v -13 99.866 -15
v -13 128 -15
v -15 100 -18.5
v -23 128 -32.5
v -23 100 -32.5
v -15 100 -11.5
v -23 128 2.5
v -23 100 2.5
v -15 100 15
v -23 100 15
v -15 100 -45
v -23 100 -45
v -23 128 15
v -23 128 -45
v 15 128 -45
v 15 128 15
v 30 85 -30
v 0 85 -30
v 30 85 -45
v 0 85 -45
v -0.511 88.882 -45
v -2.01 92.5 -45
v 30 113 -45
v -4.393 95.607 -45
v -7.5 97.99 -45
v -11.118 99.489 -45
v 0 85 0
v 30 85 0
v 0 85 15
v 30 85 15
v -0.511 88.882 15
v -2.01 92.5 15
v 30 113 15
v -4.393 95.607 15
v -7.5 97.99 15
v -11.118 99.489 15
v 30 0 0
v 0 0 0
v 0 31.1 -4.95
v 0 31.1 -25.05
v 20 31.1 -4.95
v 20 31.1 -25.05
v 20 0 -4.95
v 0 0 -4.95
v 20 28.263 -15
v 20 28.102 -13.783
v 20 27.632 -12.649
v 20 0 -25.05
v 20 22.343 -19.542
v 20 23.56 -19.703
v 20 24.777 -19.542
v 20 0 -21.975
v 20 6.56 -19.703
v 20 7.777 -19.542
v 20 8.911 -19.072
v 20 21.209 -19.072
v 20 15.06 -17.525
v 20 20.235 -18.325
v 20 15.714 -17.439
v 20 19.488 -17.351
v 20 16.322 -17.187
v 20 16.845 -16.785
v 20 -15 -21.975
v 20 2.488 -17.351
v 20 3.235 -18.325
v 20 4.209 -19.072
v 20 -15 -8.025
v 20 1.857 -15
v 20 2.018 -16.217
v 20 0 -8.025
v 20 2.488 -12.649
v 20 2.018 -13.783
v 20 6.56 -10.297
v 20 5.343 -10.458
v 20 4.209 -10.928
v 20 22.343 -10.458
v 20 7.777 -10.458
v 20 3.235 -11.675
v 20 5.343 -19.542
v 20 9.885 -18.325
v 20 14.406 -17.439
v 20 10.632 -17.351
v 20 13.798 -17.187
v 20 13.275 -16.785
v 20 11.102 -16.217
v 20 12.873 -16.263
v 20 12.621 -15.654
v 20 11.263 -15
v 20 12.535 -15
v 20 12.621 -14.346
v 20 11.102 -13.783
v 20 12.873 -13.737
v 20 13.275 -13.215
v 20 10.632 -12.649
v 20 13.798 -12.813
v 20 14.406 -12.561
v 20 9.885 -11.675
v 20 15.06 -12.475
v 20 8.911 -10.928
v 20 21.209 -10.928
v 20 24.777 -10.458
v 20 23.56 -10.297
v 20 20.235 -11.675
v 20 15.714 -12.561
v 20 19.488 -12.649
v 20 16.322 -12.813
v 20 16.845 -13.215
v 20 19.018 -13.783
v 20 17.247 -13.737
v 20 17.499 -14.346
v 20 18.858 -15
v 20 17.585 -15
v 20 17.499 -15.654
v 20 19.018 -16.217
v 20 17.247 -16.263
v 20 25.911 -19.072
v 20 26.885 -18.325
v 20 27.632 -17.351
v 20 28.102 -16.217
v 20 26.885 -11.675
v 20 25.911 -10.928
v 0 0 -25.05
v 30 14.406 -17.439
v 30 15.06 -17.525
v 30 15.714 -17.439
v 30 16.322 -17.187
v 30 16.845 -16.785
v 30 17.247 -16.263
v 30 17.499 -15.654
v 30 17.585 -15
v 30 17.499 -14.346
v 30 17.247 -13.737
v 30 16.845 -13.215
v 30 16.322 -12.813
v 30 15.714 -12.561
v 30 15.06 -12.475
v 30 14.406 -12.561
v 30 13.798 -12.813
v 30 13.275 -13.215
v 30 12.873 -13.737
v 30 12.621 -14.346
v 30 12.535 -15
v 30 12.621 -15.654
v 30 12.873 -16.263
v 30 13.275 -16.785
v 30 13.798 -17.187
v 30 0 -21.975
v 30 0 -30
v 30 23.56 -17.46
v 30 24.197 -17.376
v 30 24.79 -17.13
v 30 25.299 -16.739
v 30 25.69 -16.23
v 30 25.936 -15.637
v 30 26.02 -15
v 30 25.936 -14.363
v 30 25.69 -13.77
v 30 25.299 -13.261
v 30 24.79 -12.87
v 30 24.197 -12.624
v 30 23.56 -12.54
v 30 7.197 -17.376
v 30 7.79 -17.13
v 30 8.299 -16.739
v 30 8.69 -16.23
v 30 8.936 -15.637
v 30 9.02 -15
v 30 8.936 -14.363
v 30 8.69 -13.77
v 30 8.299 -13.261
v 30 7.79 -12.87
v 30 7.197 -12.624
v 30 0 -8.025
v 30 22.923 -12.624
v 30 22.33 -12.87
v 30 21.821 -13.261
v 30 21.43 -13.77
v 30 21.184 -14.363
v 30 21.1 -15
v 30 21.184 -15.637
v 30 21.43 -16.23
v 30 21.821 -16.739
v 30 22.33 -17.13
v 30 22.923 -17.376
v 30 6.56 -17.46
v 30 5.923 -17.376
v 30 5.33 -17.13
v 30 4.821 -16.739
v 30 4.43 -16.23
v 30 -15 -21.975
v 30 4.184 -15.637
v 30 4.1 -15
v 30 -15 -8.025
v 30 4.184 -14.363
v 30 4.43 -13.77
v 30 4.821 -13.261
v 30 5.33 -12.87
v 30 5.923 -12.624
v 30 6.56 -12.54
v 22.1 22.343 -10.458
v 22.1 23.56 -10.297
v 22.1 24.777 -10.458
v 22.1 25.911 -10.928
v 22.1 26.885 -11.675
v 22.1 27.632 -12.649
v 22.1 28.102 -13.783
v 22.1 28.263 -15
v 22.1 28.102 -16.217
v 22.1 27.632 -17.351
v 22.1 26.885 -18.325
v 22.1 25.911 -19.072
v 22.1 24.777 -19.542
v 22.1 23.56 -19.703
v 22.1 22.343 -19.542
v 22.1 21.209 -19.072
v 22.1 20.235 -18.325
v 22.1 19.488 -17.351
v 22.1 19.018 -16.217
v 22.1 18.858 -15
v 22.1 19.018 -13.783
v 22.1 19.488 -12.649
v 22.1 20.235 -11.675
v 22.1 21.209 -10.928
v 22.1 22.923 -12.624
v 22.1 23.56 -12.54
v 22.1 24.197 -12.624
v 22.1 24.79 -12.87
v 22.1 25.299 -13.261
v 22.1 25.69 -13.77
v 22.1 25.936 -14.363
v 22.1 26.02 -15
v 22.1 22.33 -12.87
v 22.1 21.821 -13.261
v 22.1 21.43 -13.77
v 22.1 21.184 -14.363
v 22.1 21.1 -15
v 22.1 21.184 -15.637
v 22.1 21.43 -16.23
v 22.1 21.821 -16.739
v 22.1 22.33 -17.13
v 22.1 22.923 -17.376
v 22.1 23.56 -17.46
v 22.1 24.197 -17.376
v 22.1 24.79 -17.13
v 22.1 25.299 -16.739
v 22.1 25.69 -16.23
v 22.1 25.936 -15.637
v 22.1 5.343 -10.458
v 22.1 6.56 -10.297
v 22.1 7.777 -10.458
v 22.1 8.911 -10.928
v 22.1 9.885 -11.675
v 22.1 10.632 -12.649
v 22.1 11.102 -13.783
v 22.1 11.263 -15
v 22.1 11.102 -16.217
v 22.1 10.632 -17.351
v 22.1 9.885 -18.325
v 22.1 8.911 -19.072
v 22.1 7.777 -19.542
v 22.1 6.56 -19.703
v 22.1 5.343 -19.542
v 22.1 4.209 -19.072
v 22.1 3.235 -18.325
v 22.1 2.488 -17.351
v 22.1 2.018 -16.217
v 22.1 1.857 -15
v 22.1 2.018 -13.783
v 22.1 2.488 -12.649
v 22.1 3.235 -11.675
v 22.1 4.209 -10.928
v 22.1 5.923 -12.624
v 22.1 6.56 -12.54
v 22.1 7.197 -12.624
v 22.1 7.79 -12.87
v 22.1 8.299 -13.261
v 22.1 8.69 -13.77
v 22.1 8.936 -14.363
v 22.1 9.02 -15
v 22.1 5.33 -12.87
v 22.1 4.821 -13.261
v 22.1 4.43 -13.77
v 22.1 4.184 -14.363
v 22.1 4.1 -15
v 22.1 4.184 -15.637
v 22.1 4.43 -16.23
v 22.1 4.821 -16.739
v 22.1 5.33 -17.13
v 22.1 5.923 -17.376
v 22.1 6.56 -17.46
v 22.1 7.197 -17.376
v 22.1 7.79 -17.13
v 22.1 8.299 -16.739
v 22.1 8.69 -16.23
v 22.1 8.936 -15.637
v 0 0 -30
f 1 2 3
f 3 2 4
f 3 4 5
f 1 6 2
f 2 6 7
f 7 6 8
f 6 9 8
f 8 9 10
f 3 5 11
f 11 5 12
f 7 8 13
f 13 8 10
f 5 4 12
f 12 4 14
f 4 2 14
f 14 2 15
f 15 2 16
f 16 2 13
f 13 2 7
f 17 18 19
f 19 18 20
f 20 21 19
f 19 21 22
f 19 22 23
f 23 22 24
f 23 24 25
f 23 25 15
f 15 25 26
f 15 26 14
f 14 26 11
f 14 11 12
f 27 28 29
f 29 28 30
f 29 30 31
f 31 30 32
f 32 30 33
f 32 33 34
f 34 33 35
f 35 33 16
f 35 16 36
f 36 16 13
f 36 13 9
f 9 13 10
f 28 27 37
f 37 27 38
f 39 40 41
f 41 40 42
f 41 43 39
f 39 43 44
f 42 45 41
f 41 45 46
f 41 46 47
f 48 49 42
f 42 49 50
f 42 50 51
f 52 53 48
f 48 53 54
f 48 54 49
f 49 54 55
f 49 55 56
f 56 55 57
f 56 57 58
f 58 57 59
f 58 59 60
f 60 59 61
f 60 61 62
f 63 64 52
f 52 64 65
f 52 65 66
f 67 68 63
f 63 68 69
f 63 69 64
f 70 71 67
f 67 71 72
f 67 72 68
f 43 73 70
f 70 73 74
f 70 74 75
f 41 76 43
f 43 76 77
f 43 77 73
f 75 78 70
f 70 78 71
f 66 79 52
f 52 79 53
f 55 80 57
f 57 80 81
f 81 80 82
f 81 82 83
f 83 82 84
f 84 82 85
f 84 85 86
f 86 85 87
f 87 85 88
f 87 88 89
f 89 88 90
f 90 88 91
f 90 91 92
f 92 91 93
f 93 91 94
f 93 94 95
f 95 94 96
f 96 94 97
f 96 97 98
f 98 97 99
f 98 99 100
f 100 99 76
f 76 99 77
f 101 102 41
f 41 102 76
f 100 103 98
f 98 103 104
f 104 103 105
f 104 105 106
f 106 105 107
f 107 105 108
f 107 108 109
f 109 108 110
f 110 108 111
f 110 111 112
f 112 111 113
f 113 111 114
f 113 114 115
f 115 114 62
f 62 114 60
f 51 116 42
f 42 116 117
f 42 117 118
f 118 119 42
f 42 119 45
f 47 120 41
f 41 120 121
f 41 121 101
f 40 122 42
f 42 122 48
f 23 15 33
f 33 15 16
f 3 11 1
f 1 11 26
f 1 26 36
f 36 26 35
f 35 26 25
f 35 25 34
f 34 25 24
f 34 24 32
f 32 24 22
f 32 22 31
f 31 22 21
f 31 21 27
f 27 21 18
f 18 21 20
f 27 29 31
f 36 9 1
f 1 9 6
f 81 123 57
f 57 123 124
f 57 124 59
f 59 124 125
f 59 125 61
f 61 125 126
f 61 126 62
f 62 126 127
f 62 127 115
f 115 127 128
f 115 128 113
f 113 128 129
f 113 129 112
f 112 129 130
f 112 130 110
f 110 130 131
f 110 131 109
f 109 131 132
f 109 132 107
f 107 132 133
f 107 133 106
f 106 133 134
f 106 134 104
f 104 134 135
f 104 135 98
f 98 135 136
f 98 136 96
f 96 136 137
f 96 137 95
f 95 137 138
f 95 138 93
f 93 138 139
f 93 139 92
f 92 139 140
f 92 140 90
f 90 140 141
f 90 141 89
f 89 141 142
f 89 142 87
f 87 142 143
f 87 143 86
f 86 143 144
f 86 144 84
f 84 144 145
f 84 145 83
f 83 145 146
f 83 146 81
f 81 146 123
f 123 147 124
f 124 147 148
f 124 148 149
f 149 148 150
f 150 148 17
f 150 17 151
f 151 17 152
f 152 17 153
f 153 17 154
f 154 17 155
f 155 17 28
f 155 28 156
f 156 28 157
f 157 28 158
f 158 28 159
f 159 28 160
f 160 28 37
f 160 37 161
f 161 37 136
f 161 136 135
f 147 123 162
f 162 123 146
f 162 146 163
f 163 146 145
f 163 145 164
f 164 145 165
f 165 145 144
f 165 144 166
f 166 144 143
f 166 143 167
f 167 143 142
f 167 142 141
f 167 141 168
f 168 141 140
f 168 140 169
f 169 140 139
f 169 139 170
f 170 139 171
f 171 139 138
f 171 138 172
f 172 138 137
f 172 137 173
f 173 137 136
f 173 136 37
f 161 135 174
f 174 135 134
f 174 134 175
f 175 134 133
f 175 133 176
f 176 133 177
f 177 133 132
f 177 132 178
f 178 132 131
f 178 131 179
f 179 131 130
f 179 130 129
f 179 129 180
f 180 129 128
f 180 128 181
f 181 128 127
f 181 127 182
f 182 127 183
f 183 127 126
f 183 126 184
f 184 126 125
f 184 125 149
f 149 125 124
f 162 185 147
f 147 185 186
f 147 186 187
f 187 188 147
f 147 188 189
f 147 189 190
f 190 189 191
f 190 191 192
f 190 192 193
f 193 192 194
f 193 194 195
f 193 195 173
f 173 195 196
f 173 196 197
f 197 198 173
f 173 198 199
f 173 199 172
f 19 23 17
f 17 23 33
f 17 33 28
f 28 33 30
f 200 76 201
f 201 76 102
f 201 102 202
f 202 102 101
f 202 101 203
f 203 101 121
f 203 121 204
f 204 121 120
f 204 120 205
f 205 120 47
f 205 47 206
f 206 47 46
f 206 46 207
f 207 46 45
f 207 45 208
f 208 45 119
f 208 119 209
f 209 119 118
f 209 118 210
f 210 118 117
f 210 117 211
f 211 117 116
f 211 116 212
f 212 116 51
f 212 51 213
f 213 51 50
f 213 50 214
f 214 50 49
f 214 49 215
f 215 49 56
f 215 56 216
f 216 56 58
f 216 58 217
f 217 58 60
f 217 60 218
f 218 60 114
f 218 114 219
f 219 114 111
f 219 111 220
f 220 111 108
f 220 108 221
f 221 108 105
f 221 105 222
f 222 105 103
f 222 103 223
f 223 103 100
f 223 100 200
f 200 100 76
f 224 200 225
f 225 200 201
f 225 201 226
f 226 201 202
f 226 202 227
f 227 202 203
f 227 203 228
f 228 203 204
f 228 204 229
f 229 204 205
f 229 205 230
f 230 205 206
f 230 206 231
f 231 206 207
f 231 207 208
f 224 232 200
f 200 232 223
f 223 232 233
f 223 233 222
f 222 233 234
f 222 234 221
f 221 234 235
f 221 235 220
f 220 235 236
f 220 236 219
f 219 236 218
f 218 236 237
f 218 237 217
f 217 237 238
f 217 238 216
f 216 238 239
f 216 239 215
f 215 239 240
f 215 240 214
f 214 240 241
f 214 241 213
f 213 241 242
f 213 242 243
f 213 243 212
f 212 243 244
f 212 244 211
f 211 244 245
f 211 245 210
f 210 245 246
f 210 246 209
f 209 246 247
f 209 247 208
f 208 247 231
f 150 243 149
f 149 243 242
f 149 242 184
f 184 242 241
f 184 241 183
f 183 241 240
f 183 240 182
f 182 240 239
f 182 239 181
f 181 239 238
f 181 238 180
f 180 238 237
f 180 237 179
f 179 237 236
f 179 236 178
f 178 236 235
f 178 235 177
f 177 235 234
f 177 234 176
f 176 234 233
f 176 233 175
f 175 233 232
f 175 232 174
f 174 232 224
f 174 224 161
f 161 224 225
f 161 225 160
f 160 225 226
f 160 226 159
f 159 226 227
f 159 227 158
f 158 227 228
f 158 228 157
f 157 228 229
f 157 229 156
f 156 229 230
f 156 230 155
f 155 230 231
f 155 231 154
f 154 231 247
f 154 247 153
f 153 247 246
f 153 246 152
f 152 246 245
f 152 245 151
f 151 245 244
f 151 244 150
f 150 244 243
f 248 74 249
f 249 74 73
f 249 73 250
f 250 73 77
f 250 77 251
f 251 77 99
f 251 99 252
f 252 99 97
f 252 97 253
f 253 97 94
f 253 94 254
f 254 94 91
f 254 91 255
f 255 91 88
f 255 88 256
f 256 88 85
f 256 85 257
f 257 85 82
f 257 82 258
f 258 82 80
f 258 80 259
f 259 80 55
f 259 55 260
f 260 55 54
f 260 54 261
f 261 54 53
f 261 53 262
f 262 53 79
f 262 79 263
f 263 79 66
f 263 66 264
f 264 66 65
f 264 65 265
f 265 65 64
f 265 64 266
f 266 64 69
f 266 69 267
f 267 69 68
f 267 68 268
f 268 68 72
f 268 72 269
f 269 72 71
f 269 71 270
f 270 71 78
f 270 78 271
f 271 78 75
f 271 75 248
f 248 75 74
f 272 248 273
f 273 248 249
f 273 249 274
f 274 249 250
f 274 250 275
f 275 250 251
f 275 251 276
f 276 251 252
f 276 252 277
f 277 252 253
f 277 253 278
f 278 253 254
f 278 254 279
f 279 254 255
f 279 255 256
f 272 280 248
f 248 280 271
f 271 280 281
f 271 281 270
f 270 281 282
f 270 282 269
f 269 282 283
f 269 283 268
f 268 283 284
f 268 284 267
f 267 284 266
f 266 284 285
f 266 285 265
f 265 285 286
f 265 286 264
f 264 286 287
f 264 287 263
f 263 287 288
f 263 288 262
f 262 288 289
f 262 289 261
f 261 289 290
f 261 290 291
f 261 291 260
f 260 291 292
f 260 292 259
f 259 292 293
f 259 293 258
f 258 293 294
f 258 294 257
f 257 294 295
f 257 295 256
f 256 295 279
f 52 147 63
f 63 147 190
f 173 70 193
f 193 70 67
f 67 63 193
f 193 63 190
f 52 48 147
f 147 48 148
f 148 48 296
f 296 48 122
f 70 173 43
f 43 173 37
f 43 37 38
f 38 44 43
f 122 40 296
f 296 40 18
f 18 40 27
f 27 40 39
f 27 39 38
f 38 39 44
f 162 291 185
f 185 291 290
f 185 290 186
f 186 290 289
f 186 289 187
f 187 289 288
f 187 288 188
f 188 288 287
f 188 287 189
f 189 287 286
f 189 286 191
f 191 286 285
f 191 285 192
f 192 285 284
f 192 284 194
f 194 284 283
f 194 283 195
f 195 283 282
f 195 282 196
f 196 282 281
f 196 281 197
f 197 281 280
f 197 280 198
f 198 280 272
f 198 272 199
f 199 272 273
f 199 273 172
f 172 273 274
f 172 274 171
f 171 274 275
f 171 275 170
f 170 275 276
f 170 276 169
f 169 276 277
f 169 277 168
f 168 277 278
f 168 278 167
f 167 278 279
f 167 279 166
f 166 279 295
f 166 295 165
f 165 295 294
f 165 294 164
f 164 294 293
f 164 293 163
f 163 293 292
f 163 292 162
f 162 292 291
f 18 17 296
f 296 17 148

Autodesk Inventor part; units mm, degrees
ref_plane "YZ Plane" through (0, 0, 0) normal (1, 0, 0) x (0, 1, 0)
ref_plane "XZ Plane" through (0, 0, 0) normal (0, 1, 0) x (-1, 0, 0)
sketch "Sketch1" plane through (0, 0, 0) normal (0, 0, 1) x (1, 0, 0)
  line L0 (0, 0) -> (25, 0)
  line L1 (25, 0) -> (25, 40)
  line L2 (25, 40) -> (0, 40)
  line L3 (0, 40) -> (0, 0)
  dimension "d1" = 25
  dimension "d2" = 40
  dimension "d3" = 25
extrude "Extrusion1" add sketch "Sketch1" against normal blind 30
sketch "Sketch2" plane through (25, 0, 0) normal (1, 0, 0) x (0, 0, -1)
  line L0 (0, 0) -> (30, 0) projected
  circle A0 centre (15, 6.56) radius 2.46
extrude "Extrusion2" cut sketch "Sketch2" against normal blind 30
sketch "Sketch3" plane through (0, 0, 0) normal (-1, 0, 0) x (0, 0, 1)
  line L0 (0, 0) -> (-30, 0) projected
  line L1 (-25.05, 0) -> (-4.95, 0)
  line L2 (-4.95, 0) -> (-4.95, 33.12)
  line L3 (-4.95, 33.12) -> (-25.05, 33.12)
  line L4 (-25.05, 33.12) -> (-25.05, 0)
  dimension "d11" = 20.1
extrude "Extrusion3" cut sketch "Sketch3" against normal blind 20
sketch "Sketch4" plane through (0, 0, 0) normal (0, -1, 0) x (1, 0, 0)
  line L0 (20, -4.95) -> (20, -25.05) projected
  line L1 (20, -15) -> (25, -15)
  line L2 (25, 0) -> (25, -30) projected
  line L3 (20, -8.025) -> (25, -8.025)
  line L4 (25, -8.025) -> (25, -21.975)
  line L5 (25, -21.975) -> (20, -21.975)
  line L6 (20, -21.975) -> (20, -8.025)
  line L7 (20, -8.025) -> (25, -21.975) construction
  line L8 (25, -8.025) -> (20, -21.975) construction
  line L9 (25, -12.54) -> (25, -17.46) projected
  point P0 (0, 0)
  point P1 (22.5, -15)
  dimension "d14" = 13.95
extrude "Extrusion4" add sketch "Sketch4" along normal blind 15
sketch "Sketch5" plane through (20, 0, 0) normal (-1, 0, 0) x (0, 0, 1)
  circle A0 centre (-15, 6.56) radius 2.46 projected
  circle A1 centre (-15, 6.56) radius 4.7025
  circle A2 centre (-15, 6.56) radius 2.46 projected
  circle A3 centre (-15, 6.56) radius 2.46
  point P0 (0, 0)
  dimension "d17" = 9.405
extrude "Extrusion5" cut sketch "Sketch5" against normal blind 2.1
sketch "Sketch6" plane through (25, 0, 0) normal (1, 0, 0) x (0, 0, -1)
  circle A0 centre (15, 6.56) radius 4.7025 projected
  line L0 (15, 6.56) -> (15, 23.56)
  circle A1 centre (15, 23.56) radius 2.46
  point P0 (0, 0)
  dimension "d20" = 17
  dimension "d21" = 4.92
extrude "Extrusion6" cut sketch "Sketch6" against normal blind 10 contours A1
sketch "Sketch7" plane through (20, 0, 0) normal (-1, 0, 0) x (0, 0, 1)
  circle A0 centre (-15, 23.56) radius 2.46 projected
  circle A1 centre (-15, 23.56) radius 4.7025
  point P0 (0, 0)
  dimension "d24" = 9.405
extrude "Extrusion7" cut sketch "Sketch7" against normal blind 2.1
sketch "Sketch9" plane through (25, 0, 0) normal (1, 0, 0) x (0, 0, -1)
  circle A0 centre (15, 6.56) radius 2.46 projected
  circle A1 centre (15, 6.56) radius 2.46
  circle A2 centre (15, 23.56) radius 2.46 projected
  circle A3 centre (15, 23.56) radius 2.46
  line L0 (30, 40) -> (30, 0) projected
  line L1 (30, 0) -> (30, 40)
  line L2 (30, 40) -> (0, 40)
  line L3 (0, 40) -> (0, 0)
  line L4 (0, 0) -> (8.025, 0) projected
  line L5 (21.975, 0) -> (21.975, -15)
  line L6 (21.975, -15) -> (8.025, -15)
  line L7 (8.025, -15) -> (8.025, 0)
  line L8 (0, 0) -> (8.025, 0)
  line L9 (21.975, 0) -> (30, 0)
extrude "Extrusion8" add sketch "Sketch9" along normal blind 5
sketch "Sketch10" plane through (0, 40, 0) normal (0, 1, 0) x (1, 0, 0)
  line L0 (0, 30) -> (30, 30) projected
  line L1 (30, 0) -> (0, 0) projected
  line L2 (0, 30) -> (30, 30)
  line L3 (30, 30) -> (30, 0)
  line L4 (30, 0) -> (0, 0)
  line L5 (0, 0) -> (0, 30)
extrude "Extrusion9" add sketch "Sketch10" along normal blind 30
sketch "Sketch12" plane through (30, 0, 0) normal (1, 0, 0) x (0, 0, -1)
  circle A0 centre (15, 6.56) radius 2.46 projected
  line L0 (15, 6.56) -> (15, 15.06)
  circle A1 centre (15, 15.06) radius 2.525
  point P0 (0, 0)
  dimension "d31" = 8.5
  dimension "d33" = 5.05
extrude "Extrusion10" cut sketch "Sketch12" against normal blind 30 contours A1
sketch "Sketch14" plane through (0, 0, 0) normal (0, 0, 1) x (1, 0, 0)
  line L0 (30, 70) -> (0, 70) projected
  line L1 (0, 70) -> (0, 85)
  line L2 (-15, 100) -> (-23, 100)
  line L3 (30, 0) -> (30, 70) projected
  line L4 (30, 113) -> (30, 70)
  arc A0 (0, 85) -> (-15, 100) centre (-15, 85) ccw
  line L5 (30, 105) -> (30, 100)
  line L6 (-23, 128) -> (15, 128)
  line L7 (30, 113) -> (15, 128)
  line L8 (-23, 128) -> (-23, 100)
  point P0 (0, 0)
  point P1 (0, 100)
  dimension "d47" = 30
  dimension "d54" = 15
  dimension "d69" = 28
extrude "Extrusion12" add sketch "Sketch14" against normal blind 30
sketch "Sketch15" plane through (0, 0, -25.05) normal (-1, 0, 0) x (0, 0, 1)
  line L0 (0, 33.12) -> (20.1, 33.12) projected
  line L1 (20.1, 33.12) -> (20.1, 0) projected
  line L2 (0, 33.12) -> (20.1, 33.12)
  line L3 (20.1, 33.12) -> (20.1, 31.1)
  line L4 (20.1, 31.1) -> (0, 31.1)
  line L5 (0, 31.1) -> (0, 33.12)
  point P0 (25.05, 0)
  dimension "d57" = 2.02
extrude "Extrusion13" add sketch "Sketch15" against normal blind 20
sketch "Sketch20" plane through (0, 0, 0) normal (0, 0, 1) x (1, 0, 0)
  arc A0 (0, 85) -> (-15, 100) centre (-15, 85) ccw projected
  arc A1 (0, 85) -> (-15, 100) centre (-15, 85) ccw
  line L0 (-15, 100) -> (-23, 100) projected
  line L1 (-15, 100) -> (-23, 100)
  line L2 (-23, 128) -> (15, 128) projected
  line L3 (-23, 128) -> (15, 128)
  line L4 (15, 128) -> (30, 113) projected
  line L5 (15, 128) -> (30, 113)
  line L6 (30, 113) -> (30, 85)
  line L7 (30, 0) -> (30, 113) projected
  line L8 (30, 85) -> (0, 85)
  line L9 (-23, 128) -> (-23, 100)
  point P0 (0, 0)
  point P1 (-19, 102)
  point P2 (-15, 114)
  point P3 (-19, 126)
extrude "Extrusion14" add sketch "Sketch20" along normal blind 15
ref_plane "Work Plane1" through (0, 0, -15) normal (0, 0, 1) x (1, 0, 0)
mirror "Mirror1" about plane through (0, 0, -15) normal (0, 0, 1) of "Extrusion14"
sketch "Sketch21" plane through (-23, 128, 15) normal (0, 1, 0) x (1, 0, 0)
  line L0 (0, 0) -> (0, 60) projected
  line L1 (0, 30) -> (0, 12.5)
  line L2 (0, 47.5) -> (0, 30)
  line L3 (0, 47.5) -> (10, 30)
  line L4 (10, 30) -> (0, 12.5)
  point P0 (23, 15)
  dimension "d76" = 17.5
extrude "Extrusion15" cut sketch "Sketch21" against normal through all
properties part number "24mm_x_60mm"
